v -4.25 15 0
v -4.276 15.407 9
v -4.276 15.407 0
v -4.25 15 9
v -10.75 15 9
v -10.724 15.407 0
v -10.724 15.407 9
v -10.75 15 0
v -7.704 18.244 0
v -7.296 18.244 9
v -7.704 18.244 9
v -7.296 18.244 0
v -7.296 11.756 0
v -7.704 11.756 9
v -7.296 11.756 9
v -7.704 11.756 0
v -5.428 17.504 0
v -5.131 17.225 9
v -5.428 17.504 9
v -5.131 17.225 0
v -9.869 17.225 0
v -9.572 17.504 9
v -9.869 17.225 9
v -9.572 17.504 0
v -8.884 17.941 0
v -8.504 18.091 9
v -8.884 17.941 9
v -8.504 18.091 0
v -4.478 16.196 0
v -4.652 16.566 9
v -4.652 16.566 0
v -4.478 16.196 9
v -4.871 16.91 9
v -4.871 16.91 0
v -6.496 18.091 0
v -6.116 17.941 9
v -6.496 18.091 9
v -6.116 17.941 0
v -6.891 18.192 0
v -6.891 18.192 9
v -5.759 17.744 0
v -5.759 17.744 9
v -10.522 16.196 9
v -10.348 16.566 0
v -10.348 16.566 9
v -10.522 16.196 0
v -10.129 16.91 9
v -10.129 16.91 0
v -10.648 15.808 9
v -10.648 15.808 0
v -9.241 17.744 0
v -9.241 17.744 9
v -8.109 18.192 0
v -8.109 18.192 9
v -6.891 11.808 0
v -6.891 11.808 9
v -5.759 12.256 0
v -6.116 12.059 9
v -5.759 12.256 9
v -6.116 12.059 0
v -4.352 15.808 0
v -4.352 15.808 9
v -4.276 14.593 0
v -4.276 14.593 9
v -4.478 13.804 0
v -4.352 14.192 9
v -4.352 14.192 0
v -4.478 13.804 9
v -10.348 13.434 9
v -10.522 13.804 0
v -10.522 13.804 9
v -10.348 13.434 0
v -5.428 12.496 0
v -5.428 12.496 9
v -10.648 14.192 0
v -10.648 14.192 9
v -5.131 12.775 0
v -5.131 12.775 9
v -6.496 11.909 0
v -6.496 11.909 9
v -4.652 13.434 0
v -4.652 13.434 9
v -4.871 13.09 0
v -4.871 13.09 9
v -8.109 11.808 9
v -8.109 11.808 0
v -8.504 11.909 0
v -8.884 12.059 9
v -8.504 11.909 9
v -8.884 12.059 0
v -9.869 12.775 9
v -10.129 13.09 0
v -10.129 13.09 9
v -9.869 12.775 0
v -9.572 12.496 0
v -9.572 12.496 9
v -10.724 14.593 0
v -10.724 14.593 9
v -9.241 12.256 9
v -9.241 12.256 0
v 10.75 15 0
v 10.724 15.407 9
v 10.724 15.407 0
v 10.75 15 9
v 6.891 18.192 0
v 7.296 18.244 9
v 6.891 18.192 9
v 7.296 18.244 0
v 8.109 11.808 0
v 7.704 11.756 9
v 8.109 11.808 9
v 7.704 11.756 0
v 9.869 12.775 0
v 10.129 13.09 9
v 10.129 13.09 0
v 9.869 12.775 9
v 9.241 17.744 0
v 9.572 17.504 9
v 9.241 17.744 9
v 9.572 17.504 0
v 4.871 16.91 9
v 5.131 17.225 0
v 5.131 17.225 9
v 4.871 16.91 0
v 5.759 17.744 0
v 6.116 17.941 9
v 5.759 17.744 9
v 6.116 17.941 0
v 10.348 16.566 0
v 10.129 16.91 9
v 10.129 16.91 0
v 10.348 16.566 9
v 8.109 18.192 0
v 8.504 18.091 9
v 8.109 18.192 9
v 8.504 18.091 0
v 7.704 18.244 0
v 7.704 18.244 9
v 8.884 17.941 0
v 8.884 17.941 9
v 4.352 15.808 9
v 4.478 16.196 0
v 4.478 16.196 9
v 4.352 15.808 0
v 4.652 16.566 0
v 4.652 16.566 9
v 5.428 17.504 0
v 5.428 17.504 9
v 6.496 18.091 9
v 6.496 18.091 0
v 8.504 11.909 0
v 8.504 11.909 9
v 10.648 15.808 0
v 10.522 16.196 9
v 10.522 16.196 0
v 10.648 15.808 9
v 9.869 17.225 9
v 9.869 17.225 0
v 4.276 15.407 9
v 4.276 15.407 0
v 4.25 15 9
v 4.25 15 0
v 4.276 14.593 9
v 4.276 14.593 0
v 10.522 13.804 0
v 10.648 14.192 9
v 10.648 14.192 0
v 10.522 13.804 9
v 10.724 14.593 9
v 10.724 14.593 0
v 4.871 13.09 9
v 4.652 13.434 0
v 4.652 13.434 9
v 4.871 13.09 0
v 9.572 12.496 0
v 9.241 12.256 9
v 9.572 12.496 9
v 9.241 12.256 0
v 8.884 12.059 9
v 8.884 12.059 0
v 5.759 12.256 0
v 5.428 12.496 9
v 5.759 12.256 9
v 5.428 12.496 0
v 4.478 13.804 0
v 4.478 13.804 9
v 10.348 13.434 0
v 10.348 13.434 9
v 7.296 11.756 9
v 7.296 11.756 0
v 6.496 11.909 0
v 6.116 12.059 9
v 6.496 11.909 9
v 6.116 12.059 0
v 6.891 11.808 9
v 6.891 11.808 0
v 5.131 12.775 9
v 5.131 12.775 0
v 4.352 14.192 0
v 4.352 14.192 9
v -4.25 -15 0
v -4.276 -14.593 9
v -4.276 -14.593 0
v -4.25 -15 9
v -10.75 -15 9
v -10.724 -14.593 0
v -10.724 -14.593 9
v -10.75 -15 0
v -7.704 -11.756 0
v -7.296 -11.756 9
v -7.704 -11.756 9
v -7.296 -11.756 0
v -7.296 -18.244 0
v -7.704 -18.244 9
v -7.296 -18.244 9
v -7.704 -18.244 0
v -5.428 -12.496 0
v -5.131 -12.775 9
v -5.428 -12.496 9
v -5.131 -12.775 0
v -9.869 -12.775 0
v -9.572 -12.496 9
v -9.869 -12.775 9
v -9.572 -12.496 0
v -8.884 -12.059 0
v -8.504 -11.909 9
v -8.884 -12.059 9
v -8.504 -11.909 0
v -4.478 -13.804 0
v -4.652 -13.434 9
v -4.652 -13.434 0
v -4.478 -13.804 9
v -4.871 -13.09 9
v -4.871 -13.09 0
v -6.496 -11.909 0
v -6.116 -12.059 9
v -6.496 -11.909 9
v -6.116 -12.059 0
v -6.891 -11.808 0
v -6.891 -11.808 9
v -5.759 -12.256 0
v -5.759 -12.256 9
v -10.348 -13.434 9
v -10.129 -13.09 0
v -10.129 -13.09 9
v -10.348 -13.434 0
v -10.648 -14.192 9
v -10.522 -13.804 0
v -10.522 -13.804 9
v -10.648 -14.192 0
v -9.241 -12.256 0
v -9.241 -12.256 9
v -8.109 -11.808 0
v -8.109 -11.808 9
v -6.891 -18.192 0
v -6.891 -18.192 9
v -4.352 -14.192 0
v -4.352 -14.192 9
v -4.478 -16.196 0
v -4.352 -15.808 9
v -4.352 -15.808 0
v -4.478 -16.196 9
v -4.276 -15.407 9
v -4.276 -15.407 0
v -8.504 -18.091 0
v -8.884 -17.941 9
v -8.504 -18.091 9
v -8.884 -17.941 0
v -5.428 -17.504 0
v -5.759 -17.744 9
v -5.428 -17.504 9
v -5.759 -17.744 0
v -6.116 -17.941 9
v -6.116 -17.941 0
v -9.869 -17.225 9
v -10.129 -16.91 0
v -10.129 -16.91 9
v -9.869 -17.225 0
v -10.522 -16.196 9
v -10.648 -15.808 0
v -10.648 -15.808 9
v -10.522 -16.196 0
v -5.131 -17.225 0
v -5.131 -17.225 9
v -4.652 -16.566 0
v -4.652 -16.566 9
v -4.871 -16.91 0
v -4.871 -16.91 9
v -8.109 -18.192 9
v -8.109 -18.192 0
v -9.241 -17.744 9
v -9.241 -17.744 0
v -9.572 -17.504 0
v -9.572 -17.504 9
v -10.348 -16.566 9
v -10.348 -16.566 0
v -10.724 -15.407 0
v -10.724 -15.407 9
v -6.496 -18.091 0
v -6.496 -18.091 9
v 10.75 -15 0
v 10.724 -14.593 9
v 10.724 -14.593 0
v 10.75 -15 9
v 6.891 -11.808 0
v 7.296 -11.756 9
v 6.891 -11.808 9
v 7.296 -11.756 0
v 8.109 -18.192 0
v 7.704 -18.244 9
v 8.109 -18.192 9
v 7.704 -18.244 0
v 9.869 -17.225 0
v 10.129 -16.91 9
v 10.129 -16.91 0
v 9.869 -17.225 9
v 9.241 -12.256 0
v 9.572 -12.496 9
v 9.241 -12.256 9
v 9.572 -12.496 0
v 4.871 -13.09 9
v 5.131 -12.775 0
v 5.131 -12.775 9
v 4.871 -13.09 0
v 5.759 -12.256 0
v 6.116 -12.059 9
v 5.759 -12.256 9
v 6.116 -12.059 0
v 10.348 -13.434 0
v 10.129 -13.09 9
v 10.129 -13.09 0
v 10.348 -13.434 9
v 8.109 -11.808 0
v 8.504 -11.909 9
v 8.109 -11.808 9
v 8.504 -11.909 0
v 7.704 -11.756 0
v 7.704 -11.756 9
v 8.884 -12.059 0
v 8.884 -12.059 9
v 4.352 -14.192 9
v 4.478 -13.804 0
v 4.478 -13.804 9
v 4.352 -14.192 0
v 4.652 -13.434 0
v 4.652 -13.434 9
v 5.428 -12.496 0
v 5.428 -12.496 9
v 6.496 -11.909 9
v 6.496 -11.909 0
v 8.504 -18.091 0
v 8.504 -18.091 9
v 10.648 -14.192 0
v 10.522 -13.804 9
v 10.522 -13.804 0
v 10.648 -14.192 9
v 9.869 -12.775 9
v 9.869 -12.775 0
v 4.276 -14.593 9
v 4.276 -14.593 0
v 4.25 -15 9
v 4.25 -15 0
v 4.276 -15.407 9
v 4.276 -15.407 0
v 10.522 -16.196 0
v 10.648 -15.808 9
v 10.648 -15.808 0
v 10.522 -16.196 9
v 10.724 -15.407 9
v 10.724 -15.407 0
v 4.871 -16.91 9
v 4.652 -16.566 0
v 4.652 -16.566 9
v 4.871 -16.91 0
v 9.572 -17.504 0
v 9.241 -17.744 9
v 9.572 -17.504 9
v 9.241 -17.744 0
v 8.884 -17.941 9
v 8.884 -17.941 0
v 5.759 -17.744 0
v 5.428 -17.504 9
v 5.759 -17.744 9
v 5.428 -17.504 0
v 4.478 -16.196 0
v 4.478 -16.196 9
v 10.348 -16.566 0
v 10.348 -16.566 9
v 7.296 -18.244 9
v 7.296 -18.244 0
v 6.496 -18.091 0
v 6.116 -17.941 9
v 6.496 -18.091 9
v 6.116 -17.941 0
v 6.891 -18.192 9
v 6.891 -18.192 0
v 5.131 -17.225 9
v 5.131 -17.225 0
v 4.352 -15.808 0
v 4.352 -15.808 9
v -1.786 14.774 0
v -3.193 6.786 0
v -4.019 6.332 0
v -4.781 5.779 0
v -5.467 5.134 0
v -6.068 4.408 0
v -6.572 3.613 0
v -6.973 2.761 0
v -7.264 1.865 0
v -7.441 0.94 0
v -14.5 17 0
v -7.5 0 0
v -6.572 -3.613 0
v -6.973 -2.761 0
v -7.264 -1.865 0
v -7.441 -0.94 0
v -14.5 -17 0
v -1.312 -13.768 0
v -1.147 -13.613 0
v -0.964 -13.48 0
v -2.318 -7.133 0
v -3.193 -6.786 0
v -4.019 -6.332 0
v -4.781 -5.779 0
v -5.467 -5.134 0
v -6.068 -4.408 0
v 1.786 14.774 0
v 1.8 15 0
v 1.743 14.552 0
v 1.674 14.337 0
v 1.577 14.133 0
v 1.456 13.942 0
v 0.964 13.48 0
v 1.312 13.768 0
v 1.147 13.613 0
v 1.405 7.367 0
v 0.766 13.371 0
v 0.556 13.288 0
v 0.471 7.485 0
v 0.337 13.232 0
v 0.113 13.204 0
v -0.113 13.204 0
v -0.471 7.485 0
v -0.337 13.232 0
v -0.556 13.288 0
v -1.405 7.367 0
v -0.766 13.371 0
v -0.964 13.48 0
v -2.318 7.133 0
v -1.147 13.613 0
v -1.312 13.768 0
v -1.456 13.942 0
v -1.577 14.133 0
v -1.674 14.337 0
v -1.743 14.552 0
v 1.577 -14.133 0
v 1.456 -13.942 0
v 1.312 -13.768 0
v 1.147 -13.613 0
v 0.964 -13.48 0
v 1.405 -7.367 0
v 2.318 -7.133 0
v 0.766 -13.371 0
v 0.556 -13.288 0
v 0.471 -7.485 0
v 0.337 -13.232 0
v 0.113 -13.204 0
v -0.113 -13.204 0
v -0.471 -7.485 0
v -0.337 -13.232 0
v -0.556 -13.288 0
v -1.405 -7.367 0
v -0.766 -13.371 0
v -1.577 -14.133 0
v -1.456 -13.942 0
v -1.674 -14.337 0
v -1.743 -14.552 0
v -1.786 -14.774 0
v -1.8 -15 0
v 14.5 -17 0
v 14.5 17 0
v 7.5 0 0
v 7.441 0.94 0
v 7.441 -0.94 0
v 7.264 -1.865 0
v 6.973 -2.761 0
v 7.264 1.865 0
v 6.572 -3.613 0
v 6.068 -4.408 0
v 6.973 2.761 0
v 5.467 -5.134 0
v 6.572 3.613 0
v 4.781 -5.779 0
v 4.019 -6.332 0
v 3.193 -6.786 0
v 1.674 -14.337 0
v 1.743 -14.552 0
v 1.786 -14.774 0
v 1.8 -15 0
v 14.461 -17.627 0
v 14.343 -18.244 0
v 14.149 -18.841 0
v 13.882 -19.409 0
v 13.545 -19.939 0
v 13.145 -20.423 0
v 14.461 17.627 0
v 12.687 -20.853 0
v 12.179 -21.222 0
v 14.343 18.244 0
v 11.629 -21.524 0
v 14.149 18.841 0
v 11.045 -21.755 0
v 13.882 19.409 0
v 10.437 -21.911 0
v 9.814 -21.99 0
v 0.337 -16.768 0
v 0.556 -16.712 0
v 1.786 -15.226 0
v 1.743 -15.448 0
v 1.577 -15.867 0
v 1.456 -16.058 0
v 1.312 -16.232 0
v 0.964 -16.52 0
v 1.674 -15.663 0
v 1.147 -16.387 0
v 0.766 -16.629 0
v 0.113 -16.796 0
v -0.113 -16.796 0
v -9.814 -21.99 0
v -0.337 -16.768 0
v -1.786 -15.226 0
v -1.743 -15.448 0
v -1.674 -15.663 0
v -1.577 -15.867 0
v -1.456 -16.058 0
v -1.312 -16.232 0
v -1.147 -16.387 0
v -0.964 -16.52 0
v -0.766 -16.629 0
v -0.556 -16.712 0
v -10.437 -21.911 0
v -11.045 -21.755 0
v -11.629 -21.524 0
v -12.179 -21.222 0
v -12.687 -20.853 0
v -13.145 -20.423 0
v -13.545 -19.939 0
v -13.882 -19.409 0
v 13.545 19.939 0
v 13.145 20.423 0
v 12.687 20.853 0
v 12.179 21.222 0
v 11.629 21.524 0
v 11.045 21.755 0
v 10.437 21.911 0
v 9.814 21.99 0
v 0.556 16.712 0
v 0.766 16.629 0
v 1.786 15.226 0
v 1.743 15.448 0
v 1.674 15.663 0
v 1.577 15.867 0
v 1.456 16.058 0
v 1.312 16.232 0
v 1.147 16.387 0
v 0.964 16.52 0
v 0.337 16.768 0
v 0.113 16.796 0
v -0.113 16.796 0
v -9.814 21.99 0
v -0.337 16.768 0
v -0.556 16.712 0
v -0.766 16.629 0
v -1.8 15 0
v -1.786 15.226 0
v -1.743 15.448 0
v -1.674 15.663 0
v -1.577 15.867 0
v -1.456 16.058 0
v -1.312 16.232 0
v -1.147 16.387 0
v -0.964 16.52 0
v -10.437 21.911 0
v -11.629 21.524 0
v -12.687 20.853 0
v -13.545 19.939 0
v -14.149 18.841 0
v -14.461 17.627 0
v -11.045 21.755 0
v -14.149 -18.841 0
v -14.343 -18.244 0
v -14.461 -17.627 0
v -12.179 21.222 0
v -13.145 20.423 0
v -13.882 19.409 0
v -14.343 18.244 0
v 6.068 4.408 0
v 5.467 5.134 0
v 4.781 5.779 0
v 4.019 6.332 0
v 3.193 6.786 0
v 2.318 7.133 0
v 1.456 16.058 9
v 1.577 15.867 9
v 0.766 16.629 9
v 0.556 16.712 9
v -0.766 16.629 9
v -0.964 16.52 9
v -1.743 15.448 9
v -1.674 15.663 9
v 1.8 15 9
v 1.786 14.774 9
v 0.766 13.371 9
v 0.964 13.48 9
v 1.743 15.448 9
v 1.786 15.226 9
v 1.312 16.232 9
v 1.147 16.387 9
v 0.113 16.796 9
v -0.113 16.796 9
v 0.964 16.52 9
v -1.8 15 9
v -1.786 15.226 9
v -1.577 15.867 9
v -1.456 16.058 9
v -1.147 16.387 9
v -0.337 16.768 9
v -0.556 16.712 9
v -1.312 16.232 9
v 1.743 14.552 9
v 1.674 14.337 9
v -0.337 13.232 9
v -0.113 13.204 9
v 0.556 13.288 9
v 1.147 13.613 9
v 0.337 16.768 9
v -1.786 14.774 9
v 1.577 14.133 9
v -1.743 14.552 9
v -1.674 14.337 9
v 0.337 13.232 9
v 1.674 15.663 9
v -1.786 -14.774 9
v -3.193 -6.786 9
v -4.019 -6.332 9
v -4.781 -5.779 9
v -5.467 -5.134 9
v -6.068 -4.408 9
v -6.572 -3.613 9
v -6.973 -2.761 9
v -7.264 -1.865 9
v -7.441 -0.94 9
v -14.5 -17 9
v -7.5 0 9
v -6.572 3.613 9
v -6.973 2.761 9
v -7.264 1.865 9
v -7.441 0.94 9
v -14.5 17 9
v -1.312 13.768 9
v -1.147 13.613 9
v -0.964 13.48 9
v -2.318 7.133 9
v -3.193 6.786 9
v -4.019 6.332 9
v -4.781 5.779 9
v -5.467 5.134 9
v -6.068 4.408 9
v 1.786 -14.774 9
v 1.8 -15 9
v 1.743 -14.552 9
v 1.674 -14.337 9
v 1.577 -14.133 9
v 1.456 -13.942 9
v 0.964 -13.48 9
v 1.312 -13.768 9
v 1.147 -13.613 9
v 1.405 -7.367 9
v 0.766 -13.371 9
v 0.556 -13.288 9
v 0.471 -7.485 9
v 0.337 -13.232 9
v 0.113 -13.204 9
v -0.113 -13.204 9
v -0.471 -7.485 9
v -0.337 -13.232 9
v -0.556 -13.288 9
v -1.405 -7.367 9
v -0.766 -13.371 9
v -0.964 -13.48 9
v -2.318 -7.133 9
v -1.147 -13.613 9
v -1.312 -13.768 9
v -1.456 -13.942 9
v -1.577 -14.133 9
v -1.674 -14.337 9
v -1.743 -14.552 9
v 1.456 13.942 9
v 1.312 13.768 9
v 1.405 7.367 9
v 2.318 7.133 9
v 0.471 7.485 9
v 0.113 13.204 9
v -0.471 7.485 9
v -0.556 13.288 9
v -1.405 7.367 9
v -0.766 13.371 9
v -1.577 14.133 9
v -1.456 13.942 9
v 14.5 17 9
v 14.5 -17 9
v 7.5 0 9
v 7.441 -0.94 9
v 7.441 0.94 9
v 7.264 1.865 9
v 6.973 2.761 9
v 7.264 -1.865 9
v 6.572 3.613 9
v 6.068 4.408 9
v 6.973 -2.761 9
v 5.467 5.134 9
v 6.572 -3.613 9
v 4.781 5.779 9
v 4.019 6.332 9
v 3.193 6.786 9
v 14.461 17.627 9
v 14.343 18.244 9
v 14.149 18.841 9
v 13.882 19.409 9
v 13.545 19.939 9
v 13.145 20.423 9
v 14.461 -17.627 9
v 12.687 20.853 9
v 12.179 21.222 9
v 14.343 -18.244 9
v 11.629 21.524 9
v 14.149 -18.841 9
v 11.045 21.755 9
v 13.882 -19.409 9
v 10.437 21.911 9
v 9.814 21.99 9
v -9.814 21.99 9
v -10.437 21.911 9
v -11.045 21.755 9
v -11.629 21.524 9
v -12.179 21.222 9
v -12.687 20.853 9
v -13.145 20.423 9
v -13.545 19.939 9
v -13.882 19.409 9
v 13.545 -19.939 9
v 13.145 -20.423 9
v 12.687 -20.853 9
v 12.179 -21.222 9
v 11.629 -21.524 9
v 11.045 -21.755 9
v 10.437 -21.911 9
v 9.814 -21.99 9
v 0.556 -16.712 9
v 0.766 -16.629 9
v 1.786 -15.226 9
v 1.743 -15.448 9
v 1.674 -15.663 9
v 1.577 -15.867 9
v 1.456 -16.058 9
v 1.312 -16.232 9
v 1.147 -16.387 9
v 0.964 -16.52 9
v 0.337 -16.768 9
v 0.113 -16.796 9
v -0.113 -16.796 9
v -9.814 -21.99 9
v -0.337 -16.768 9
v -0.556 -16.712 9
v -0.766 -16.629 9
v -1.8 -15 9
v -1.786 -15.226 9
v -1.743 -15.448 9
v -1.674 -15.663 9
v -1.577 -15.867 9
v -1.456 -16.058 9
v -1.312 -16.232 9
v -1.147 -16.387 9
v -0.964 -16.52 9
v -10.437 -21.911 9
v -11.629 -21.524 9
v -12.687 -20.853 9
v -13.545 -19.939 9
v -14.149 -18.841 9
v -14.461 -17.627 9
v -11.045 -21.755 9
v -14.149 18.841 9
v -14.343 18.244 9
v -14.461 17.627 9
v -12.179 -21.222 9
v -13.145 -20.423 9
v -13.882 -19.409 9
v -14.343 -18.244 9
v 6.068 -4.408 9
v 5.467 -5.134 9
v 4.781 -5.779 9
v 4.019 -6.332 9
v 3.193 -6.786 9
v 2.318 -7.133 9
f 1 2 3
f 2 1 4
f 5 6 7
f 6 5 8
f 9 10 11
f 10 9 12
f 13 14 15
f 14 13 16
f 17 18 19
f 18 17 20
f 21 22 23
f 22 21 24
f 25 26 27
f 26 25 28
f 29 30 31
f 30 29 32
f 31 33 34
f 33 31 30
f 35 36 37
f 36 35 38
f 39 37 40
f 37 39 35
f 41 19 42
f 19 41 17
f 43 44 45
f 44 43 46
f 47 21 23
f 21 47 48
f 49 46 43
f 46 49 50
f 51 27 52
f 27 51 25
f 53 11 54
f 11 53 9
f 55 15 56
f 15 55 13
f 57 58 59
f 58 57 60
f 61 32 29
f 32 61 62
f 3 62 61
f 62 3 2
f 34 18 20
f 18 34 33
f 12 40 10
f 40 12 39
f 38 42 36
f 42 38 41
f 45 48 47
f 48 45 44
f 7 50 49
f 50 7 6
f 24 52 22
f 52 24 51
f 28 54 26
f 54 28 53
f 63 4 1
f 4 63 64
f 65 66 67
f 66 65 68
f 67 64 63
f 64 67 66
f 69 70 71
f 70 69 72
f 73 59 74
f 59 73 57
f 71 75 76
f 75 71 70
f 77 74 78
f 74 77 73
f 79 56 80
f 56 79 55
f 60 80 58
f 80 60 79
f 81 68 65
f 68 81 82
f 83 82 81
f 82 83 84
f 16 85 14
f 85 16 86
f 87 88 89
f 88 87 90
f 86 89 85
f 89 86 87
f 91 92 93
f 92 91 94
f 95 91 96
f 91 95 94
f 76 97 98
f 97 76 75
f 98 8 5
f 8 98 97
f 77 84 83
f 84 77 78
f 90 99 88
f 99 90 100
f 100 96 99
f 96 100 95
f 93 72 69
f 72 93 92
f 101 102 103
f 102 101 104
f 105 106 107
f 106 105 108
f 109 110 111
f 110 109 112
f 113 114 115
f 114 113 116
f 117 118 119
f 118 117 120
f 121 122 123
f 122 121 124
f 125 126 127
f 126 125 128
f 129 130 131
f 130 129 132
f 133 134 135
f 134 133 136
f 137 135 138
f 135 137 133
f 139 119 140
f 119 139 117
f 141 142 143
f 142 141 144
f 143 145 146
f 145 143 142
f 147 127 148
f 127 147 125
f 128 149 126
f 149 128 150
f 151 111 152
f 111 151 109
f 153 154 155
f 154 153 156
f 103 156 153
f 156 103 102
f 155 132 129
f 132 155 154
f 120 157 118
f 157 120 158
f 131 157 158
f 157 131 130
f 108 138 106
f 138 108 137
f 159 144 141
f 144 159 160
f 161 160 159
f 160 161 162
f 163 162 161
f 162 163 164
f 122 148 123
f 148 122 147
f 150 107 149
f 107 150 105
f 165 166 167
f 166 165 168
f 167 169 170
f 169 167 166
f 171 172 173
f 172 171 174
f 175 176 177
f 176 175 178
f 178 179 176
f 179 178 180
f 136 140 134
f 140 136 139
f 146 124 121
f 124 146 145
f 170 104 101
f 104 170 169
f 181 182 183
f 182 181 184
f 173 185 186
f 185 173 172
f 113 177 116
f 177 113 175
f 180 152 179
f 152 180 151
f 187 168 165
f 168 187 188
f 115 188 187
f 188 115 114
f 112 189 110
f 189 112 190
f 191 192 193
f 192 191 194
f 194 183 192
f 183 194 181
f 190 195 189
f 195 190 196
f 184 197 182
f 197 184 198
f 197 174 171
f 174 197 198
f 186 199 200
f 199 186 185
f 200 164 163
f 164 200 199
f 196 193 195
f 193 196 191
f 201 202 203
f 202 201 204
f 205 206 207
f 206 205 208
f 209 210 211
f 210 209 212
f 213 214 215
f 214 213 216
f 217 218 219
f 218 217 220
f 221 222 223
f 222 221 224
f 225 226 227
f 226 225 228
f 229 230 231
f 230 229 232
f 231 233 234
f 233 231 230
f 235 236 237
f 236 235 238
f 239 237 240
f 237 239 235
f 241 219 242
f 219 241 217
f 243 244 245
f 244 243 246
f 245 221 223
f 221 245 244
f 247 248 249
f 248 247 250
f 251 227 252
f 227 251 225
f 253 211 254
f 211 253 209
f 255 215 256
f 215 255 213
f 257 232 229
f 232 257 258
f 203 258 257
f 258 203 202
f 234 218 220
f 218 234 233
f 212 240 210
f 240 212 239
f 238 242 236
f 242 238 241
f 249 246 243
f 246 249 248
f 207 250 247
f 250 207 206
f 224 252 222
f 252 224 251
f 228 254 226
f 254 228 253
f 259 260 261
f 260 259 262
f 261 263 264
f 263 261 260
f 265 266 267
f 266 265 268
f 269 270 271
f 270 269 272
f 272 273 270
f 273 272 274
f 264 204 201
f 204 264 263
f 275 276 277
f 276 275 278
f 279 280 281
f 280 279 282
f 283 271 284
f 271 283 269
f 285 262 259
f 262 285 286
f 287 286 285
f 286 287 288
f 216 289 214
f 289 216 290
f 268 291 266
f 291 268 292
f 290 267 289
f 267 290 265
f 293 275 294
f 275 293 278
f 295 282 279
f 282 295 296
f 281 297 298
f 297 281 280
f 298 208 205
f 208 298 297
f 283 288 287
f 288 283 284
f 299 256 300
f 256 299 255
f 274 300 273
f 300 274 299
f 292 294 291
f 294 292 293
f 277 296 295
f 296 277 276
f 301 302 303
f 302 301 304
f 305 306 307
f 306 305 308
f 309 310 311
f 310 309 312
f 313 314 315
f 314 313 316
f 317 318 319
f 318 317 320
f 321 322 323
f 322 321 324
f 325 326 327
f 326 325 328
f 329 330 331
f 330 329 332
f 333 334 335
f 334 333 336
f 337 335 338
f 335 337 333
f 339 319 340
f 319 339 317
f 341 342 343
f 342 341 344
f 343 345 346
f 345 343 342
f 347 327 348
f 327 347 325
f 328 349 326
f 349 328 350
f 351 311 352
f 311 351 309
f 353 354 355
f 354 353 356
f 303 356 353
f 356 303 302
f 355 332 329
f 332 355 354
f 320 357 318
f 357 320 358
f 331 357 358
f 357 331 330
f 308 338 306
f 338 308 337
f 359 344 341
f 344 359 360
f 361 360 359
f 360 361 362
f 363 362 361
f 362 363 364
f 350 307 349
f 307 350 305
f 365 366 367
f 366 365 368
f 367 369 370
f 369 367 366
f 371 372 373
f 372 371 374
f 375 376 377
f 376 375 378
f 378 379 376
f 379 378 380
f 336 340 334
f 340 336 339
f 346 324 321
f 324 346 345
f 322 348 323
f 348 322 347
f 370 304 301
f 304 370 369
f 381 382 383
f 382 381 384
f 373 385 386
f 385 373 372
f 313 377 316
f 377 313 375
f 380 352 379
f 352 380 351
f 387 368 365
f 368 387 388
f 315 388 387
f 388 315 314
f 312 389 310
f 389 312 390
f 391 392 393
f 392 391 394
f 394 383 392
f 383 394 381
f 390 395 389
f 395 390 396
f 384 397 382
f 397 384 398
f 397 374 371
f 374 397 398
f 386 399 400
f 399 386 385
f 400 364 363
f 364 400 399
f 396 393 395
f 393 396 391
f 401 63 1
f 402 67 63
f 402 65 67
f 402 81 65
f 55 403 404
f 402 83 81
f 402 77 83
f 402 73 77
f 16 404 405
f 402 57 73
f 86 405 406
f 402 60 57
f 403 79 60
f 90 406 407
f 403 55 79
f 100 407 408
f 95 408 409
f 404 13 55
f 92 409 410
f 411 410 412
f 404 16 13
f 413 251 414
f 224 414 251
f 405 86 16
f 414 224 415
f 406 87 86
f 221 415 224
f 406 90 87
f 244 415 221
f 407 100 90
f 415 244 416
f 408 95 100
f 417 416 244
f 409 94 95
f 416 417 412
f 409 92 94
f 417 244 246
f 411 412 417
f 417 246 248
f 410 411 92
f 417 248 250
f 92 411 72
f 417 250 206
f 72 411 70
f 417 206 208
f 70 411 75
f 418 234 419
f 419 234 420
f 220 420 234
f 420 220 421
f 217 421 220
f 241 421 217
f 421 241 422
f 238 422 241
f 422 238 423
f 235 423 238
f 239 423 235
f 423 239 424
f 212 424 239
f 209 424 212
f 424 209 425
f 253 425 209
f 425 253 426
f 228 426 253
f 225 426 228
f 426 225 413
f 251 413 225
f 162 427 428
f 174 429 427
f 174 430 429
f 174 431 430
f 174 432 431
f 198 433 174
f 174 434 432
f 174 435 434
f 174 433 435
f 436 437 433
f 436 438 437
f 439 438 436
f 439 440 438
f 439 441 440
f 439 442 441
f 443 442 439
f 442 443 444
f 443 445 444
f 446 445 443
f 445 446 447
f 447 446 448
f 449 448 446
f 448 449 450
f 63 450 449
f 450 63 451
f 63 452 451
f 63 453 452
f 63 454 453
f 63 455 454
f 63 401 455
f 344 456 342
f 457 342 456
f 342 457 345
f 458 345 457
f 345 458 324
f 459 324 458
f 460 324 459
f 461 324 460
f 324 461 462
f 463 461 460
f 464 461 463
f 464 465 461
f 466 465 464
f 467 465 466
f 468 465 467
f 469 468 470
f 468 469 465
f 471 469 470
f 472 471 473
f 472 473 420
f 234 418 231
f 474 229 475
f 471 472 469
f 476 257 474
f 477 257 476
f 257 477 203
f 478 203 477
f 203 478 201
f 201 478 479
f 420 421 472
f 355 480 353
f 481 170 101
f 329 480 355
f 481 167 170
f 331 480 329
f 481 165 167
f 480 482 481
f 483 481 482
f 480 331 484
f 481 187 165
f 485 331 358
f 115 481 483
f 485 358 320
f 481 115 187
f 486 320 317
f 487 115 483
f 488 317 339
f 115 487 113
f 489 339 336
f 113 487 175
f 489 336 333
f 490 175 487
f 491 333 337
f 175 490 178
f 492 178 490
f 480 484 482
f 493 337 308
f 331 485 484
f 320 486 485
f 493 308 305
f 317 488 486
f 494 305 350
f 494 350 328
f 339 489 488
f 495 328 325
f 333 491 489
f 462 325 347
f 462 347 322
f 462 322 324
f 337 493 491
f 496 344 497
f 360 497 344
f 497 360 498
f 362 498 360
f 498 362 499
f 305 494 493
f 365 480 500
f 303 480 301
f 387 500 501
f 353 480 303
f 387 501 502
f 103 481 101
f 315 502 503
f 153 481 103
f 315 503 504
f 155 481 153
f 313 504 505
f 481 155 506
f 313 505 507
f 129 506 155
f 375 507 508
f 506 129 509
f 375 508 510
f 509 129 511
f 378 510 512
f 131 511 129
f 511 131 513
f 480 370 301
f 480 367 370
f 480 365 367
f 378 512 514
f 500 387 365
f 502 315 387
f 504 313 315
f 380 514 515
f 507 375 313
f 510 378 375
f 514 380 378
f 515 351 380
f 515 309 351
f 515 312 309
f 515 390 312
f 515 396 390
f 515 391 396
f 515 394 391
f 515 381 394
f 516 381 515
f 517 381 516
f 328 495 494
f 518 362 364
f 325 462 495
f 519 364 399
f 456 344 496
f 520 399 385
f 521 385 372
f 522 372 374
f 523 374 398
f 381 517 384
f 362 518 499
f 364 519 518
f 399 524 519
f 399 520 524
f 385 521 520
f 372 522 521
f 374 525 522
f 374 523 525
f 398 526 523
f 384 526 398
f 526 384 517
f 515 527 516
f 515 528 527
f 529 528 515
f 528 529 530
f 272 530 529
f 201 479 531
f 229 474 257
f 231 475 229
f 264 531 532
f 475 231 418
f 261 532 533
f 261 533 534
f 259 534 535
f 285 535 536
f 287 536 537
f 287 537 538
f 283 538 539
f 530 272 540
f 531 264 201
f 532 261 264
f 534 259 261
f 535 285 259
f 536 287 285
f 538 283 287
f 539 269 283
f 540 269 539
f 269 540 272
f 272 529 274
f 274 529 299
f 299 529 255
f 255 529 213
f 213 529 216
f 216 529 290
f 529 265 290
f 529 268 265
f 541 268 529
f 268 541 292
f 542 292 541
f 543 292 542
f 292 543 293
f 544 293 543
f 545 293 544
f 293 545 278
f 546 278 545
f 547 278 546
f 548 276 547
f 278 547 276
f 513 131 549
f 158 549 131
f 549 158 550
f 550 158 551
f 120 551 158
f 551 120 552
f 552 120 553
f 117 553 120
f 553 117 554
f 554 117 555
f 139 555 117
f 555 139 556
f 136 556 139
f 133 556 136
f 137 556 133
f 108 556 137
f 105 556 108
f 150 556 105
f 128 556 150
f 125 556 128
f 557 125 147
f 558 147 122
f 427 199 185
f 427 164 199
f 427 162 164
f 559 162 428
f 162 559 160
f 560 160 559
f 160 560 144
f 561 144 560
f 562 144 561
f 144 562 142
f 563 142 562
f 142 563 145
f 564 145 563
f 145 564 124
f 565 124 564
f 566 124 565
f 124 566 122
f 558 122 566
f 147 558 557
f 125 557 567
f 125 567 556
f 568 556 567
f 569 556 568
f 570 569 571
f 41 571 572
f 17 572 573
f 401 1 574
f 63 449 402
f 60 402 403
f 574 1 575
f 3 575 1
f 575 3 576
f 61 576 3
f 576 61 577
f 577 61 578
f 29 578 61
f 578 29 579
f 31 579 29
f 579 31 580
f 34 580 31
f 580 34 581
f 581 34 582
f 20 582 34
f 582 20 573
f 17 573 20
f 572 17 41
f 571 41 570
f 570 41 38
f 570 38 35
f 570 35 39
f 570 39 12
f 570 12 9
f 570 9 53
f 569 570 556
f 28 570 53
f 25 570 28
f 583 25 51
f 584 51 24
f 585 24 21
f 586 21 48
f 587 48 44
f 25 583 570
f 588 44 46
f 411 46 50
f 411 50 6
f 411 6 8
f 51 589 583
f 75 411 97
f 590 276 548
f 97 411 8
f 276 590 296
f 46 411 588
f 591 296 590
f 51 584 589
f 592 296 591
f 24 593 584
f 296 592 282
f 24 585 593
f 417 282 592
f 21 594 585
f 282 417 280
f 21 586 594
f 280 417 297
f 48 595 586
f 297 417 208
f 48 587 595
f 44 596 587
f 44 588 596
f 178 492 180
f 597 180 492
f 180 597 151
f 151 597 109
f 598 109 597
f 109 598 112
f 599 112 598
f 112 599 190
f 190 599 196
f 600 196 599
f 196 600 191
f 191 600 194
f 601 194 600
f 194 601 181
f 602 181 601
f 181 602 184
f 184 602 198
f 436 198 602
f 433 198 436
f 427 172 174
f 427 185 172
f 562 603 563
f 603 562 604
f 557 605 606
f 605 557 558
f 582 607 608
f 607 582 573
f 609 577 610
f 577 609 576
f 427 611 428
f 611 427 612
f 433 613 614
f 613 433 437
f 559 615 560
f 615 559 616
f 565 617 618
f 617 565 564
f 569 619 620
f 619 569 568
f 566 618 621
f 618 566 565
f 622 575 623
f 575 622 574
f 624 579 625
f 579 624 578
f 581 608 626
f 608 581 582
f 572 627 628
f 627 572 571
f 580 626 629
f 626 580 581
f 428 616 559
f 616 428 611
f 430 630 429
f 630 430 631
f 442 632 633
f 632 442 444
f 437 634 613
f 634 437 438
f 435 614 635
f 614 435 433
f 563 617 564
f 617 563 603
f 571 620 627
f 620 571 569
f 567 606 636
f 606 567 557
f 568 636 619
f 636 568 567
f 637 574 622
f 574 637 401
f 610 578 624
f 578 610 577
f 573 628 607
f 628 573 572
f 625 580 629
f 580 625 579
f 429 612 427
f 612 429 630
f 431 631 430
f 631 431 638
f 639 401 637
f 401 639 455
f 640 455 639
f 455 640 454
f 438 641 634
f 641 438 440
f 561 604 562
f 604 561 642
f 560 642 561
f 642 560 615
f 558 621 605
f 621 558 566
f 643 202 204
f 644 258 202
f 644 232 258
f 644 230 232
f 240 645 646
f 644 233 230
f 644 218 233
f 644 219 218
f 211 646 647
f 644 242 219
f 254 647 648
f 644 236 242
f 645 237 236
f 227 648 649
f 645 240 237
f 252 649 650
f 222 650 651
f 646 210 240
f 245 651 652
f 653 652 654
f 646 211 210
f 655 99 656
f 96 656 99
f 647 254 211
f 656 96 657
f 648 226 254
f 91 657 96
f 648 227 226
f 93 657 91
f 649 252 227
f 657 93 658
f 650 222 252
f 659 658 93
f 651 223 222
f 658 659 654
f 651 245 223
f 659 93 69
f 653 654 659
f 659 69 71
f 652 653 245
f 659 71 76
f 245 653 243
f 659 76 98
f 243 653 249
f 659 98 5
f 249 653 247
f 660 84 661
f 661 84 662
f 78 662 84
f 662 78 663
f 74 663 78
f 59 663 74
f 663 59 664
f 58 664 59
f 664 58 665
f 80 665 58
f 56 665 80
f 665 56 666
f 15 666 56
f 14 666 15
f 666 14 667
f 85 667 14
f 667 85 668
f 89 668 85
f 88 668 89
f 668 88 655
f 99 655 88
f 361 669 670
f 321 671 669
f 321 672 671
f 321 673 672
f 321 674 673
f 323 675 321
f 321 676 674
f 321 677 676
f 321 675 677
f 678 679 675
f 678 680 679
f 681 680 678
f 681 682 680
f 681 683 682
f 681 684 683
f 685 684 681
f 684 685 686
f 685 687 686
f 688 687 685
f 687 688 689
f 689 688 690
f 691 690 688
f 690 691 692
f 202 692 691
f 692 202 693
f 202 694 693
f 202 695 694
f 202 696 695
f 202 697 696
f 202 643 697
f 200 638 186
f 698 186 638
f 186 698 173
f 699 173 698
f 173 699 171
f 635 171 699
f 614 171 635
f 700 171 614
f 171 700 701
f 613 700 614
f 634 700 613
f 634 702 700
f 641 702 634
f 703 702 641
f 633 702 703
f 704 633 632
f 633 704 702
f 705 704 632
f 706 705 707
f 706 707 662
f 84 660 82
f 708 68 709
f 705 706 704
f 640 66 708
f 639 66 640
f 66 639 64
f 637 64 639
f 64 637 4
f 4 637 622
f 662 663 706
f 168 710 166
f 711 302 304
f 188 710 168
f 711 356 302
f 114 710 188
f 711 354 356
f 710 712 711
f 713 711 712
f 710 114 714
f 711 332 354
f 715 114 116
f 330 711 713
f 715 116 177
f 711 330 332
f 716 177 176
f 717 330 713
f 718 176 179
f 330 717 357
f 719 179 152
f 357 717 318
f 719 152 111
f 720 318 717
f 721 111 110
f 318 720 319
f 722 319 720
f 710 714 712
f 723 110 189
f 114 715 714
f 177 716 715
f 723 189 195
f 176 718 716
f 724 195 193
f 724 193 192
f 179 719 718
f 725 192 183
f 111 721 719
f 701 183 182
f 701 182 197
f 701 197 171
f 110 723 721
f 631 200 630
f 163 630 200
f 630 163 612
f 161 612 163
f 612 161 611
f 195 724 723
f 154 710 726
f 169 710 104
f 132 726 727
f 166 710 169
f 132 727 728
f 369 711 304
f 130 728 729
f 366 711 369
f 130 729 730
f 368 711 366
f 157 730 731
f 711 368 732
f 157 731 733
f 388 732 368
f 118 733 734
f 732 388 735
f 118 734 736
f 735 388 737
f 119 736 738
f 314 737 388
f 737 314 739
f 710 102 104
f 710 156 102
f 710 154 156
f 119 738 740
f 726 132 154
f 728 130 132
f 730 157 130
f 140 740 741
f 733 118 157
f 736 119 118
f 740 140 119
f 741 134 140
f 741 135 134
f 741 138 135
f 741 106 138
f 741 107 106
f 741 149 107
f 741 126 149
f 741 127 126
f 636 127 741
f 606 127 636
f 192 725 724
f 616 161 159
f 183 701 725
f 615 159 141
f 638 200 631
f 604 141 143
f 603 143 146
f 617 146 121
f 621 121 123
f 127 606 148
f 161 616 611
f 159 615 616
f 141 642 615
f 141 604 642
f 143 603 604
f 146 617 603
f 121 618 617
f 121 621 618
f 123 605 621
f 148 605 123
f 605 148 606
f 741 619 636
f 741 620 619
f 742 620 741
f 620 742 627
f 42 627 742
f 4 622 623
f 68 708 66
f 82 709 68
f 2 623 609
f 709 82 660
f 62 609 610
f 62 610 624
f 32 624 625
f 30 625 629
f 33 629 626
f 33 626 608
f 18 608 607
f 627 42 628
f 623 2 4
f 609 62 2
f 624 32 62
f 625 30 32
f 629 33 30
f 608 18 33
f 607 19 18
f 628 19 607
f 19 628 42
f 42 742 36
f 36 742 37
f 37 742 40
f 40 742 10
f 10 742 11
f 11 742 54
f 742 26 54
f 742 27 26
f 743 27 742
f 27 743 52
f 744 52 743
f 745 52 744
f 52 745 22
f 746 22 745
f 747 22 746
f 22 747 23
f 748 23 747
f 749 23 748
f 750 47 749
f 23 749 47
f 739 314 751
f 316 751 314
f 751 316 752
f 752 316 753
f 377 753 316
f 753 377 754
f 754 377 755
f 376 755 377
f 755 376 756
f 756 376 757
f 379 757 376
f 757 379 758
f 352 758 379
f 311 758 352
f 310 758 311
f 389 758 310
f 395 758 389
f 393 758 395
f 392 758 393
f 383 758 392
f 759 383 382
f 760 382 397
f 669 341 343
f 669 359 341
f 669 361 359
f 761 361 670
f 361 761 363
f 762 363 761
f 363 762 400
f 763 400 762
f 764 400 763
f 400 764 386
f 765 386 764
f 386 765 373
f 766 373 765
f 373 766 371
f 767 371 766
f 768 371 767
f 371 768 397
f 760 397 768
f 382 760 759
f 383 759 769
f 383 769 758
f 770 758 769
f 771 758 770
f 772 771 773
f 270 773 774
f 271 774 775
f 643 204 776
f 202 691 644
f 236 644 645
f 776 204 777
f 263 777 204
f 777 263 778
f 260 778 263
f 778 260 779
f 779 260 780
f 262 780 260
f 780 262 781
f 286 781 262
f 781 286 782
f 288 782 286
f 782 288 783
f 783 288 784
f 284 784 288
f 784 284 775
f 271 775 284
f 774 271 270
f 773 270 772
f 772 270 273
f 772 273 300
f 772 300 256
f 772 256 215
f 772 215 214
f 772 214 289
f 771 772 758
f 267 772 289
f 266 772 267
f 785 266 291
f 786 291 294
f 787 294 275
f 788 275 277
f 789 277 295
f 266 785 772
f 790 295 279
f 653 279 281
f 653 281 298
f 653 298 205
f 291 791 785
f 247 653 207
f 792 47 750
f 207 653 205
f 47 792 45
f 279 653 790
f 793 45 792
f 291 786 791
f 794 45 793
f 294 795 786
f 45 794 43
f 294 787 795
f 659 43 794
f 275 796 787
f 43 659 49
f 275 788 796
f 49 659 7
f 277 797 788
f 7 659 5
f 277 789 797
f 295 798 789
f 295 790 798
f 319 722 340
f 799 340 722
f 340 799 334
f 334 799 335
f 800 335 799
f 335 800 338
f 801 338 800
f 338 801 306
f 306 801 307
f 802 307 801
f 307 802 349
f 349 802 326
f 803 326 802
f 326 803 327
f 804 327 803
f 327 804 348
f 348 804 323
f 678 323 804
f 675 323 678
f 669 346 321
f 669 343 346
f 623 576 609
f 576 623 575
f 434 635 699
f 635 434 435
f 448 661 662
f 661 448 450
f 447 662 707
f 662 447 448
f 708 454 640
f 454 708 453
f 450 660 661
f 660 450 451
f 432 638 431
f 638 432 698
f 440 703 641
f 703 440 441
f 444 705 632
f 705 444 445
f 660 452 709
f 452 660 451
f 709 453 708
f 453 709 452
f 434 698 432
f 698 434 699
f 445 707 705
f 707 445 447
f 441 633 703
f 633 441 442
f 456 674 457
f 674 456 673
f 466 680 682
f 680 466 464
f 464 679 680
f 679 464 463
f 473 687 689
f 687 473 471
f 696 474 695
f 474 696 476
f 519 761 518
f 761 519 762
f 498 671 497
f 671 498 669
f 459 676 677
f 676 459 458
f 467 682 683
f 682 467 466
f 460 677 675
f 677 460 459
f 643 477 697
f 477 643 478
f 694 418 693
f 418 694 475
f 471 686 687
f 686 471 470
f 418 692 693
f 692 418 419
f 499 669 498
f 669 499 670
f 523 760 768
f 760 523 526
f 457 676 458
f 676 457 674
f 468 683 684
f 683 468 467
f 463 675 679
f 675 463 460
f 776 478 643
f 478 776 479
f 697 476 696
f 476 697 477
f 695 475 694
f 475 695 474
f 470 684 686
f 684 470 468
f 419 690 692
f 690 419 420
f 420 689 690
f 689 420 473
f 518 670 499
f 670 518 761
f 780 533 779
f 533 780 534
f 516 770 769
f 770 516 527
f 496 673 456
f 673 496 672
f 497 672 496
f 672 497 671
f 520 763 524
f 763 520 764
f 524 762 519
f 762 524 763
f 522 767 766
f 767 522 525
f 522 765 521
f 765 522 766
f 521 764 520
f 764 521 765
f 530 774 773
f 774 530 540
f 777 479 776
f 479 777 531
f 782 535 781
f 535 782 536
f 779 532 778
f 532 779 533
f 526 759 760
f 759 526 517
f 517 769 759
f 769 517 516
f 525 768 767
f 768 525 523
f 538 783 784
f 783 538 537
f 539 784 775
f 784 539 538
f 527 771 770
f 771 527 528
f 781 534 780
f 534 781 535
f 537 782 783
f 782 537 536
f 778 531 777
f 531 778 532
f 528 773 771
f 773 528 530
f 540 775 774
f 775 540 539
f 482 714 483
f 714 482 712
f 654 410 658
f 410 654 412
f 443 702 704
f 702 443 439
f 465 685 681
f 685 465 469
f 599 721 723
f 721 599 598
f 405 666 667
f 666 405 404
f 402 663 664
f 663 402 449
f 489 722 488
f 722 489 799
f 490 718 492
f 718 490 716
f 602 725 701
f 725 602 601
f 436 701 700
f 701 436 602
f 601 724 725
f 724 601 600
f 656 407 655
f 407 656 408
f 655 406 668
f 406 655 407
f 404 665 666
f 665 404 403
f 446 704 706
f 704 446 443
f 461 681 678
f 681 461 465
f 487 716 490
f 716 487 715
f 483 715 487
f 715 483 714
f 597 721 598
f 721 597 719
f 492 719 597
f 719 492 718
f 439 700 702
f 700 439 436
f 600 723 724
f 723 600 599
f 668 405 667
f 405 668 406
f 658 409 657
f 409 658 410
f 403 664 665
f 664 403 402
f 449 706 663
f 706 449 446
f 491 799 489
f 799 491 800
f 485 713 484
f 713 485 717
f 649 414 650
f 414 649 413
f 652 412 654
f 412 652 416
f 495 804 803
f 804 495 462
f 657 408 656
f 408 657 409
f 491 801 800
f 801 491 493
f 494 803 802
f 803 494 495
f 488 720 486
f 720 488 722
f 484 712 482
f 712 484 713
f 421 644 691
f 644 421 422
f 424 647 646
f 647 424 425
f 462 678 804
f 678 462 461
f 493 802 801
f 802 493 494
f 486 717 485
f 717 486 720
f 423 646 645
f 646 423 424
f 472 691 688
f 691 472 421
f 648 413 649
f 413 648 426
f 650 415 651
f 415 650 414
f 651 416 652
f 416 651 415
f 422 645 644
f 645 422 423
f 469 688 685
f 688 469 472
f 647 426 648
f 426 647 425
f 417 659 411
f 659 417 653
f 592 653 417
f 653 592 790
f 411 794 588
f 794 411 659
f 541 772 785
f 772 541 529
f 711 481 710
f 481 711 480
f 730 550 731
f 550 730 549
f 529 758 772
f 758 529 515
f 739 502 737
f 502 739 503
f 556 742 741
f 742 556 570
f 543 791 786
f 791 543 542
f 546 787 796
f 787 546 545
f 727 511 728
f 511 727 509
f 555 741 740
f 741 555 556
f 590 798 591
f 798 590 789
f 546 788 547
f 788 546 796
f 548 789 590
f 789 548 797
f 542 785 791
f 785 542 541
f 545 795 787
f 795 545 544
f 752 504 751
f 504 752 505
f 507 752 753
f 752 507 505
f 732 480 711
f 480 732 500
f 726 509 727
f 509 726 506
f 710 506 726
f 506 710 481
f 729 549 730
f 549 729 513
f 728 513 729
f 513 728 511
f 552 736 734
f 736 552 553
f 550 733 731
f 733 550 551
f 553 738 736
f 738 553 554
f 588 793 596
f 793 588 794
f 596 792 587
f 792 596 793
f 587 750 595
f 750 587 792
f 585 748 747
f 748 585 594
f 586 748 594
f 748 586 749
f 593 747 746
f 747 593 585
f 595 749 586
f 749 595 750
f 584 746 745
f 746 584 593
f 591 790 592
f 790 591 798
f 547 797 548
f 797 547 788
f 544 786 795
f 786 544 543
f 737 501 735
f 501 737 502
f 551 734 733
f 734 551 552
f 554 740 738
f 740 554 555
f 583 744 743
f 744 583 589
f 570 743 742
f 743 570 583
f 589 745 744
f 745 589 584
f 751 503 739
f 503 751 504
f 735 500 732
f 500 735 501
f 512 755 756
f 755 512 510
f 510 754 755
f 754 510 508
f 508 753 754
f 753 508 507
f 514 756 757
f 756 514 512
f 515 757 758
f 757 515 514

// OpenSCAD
$fn = 50;


difference() {
	union() {
		hull() {
			translate(v = [-9.5000000000, 17.0000000000, 0]) {
				cylinder(h = 9, r = 5);
			}
			translate(v = [9.5000000000, 17.0000000000, 0]) {
				cylinder(h = 9, r = 5);
			}
			translate(v = [-9.5000000000, -17.0000000000, 0]) {
				cylinder(h = 9, r = 5);
			}
			translate(v = [9.5000000000, -17.0000000000, 0]) {
				cylinder(h = 9, r = 5);
			}
		}
	}
	union() {
		#translate(v = [-7.5000000000, 15.0000000000, 0]) {
			cylinder(h = 9, r = 3.2500000000);
		}
		#translate(v = [7.5000000000, 15.0000000000, 0]) {
			cylinder(h = 9, r = 3.2500000000);
		}
		#translate(v = [-7.5000000000, -15.0000000000, 0]) {
			cylinder(h = 9, r = 3.2500000000);
		}
		#translate(v = [7.5000000000, -15.0000000000, 0]) {
			cylinder(h = 9, r = 3.2500000000);
		}
		#translate(v = [-7.5000000000, -15.0000000000, -100.0000000000]) {
			cylinder(h = 200, r = 3.2500000000);
		}
		#translate(v = [-7.5000000000, 15.0000000000, -100.0000000000]) {
			cylinder(h = 200, r = 3.2500000000);
		}
		#translate(v = [7.5000000000, -15.0000000000, -100.0000000000]) {
			cylinder(h = 200, r = 3.2500000000);
		}
		#translate(v = [7.5000000000, 15.0000000000, -100.0000000000]) {
			cylinder(h = 200, r = 3.2500000000);
		}
		#translate(v = [-7.5000000000, 15.0000000000, 0]) {
			cylinder(h = 9, r = 1.8000000000);
		}
		#translate(v = [0.0000000000, 15.0000000000, 0]) {
			cylinder(h = 9, r = 1.8000000000);
		}
		#translate(v = [7.5000000000, 15.0000000000, 0]) {
			cylinder(h = 9, r = 1.8000000000);
		}
		#translate(v = [-7.5000000000, -15.0000000000, 0]) {
			cylinder(h = 9, r = 1.8000000000);
		}
		#translate(v = [0.0000000000, -15.0000000000, 0]) {
			cylinder(h = 9, r = 1.8000000000);
		}
		#translate(v = [7.5000000000, -15.0000000000, 0]) {
			cylinder(h = 9, r = 1.8000000000);
		}
		#translate(v = [-7.5000000000, 15.0000000000, 0]) {
			cylinder(h = 9, r = 1.8000000000);
		}
		#translate(v = [0.0000000000, 15.0000000000, 0]) {
			cylinder(h = 9, r = 1.8000000000);
		}
		#translate(v = [7.5000000000, 15.0000000000, 0]) {
			cylinder(h = 9, r = 1.8000000000);
		}
		#translate(v = [-7.5000000000, -15.0000000000, 0]) {
			cylinder(h = 9, r = 1.8000000000);
		}
		#translate(v = [0.0000000000, -15.0000000000, 0]) {
			cylinder(h = 9, r = 1.8000000000);
		}
		#translate(v = [7.5000000000, -15.0000000000, 0]) {
			cylinder(h = 9, r = 1.8000000000);
		}
		#translate(v = [-7.5000000000, 15.0000000000, 0]) {
			cylinder(h = 9, r = 1.8000000000);
		}
		#translate(v = [0.0000000000, 15.0000000000, 0]) {
			cylinder(h = 9, r = 1.8000000000);
		}
		#translate(v = [7.5000000000, 15.0000000000, 0]) {
			cylinder(h = 9, r = 1.8000000000);
		}
		#translate(v = [-7.5000000000, -15.0000000000, 0]) {
			cylinder(h = 9, r = 1.8000000000);
		}
		#translate(v = [0.0000000000, -15.0000000000, 0]) {
			cylinder(h = 9, r = 1.8000000000);
		}
		#translate(v = [7.5000000000, -15.0000000000, 0]) {
			cylinder(h = 9, r = 1.8000000000);
		}
		#cylinder(h = 9, r = 7.5000000000);
	}
}
